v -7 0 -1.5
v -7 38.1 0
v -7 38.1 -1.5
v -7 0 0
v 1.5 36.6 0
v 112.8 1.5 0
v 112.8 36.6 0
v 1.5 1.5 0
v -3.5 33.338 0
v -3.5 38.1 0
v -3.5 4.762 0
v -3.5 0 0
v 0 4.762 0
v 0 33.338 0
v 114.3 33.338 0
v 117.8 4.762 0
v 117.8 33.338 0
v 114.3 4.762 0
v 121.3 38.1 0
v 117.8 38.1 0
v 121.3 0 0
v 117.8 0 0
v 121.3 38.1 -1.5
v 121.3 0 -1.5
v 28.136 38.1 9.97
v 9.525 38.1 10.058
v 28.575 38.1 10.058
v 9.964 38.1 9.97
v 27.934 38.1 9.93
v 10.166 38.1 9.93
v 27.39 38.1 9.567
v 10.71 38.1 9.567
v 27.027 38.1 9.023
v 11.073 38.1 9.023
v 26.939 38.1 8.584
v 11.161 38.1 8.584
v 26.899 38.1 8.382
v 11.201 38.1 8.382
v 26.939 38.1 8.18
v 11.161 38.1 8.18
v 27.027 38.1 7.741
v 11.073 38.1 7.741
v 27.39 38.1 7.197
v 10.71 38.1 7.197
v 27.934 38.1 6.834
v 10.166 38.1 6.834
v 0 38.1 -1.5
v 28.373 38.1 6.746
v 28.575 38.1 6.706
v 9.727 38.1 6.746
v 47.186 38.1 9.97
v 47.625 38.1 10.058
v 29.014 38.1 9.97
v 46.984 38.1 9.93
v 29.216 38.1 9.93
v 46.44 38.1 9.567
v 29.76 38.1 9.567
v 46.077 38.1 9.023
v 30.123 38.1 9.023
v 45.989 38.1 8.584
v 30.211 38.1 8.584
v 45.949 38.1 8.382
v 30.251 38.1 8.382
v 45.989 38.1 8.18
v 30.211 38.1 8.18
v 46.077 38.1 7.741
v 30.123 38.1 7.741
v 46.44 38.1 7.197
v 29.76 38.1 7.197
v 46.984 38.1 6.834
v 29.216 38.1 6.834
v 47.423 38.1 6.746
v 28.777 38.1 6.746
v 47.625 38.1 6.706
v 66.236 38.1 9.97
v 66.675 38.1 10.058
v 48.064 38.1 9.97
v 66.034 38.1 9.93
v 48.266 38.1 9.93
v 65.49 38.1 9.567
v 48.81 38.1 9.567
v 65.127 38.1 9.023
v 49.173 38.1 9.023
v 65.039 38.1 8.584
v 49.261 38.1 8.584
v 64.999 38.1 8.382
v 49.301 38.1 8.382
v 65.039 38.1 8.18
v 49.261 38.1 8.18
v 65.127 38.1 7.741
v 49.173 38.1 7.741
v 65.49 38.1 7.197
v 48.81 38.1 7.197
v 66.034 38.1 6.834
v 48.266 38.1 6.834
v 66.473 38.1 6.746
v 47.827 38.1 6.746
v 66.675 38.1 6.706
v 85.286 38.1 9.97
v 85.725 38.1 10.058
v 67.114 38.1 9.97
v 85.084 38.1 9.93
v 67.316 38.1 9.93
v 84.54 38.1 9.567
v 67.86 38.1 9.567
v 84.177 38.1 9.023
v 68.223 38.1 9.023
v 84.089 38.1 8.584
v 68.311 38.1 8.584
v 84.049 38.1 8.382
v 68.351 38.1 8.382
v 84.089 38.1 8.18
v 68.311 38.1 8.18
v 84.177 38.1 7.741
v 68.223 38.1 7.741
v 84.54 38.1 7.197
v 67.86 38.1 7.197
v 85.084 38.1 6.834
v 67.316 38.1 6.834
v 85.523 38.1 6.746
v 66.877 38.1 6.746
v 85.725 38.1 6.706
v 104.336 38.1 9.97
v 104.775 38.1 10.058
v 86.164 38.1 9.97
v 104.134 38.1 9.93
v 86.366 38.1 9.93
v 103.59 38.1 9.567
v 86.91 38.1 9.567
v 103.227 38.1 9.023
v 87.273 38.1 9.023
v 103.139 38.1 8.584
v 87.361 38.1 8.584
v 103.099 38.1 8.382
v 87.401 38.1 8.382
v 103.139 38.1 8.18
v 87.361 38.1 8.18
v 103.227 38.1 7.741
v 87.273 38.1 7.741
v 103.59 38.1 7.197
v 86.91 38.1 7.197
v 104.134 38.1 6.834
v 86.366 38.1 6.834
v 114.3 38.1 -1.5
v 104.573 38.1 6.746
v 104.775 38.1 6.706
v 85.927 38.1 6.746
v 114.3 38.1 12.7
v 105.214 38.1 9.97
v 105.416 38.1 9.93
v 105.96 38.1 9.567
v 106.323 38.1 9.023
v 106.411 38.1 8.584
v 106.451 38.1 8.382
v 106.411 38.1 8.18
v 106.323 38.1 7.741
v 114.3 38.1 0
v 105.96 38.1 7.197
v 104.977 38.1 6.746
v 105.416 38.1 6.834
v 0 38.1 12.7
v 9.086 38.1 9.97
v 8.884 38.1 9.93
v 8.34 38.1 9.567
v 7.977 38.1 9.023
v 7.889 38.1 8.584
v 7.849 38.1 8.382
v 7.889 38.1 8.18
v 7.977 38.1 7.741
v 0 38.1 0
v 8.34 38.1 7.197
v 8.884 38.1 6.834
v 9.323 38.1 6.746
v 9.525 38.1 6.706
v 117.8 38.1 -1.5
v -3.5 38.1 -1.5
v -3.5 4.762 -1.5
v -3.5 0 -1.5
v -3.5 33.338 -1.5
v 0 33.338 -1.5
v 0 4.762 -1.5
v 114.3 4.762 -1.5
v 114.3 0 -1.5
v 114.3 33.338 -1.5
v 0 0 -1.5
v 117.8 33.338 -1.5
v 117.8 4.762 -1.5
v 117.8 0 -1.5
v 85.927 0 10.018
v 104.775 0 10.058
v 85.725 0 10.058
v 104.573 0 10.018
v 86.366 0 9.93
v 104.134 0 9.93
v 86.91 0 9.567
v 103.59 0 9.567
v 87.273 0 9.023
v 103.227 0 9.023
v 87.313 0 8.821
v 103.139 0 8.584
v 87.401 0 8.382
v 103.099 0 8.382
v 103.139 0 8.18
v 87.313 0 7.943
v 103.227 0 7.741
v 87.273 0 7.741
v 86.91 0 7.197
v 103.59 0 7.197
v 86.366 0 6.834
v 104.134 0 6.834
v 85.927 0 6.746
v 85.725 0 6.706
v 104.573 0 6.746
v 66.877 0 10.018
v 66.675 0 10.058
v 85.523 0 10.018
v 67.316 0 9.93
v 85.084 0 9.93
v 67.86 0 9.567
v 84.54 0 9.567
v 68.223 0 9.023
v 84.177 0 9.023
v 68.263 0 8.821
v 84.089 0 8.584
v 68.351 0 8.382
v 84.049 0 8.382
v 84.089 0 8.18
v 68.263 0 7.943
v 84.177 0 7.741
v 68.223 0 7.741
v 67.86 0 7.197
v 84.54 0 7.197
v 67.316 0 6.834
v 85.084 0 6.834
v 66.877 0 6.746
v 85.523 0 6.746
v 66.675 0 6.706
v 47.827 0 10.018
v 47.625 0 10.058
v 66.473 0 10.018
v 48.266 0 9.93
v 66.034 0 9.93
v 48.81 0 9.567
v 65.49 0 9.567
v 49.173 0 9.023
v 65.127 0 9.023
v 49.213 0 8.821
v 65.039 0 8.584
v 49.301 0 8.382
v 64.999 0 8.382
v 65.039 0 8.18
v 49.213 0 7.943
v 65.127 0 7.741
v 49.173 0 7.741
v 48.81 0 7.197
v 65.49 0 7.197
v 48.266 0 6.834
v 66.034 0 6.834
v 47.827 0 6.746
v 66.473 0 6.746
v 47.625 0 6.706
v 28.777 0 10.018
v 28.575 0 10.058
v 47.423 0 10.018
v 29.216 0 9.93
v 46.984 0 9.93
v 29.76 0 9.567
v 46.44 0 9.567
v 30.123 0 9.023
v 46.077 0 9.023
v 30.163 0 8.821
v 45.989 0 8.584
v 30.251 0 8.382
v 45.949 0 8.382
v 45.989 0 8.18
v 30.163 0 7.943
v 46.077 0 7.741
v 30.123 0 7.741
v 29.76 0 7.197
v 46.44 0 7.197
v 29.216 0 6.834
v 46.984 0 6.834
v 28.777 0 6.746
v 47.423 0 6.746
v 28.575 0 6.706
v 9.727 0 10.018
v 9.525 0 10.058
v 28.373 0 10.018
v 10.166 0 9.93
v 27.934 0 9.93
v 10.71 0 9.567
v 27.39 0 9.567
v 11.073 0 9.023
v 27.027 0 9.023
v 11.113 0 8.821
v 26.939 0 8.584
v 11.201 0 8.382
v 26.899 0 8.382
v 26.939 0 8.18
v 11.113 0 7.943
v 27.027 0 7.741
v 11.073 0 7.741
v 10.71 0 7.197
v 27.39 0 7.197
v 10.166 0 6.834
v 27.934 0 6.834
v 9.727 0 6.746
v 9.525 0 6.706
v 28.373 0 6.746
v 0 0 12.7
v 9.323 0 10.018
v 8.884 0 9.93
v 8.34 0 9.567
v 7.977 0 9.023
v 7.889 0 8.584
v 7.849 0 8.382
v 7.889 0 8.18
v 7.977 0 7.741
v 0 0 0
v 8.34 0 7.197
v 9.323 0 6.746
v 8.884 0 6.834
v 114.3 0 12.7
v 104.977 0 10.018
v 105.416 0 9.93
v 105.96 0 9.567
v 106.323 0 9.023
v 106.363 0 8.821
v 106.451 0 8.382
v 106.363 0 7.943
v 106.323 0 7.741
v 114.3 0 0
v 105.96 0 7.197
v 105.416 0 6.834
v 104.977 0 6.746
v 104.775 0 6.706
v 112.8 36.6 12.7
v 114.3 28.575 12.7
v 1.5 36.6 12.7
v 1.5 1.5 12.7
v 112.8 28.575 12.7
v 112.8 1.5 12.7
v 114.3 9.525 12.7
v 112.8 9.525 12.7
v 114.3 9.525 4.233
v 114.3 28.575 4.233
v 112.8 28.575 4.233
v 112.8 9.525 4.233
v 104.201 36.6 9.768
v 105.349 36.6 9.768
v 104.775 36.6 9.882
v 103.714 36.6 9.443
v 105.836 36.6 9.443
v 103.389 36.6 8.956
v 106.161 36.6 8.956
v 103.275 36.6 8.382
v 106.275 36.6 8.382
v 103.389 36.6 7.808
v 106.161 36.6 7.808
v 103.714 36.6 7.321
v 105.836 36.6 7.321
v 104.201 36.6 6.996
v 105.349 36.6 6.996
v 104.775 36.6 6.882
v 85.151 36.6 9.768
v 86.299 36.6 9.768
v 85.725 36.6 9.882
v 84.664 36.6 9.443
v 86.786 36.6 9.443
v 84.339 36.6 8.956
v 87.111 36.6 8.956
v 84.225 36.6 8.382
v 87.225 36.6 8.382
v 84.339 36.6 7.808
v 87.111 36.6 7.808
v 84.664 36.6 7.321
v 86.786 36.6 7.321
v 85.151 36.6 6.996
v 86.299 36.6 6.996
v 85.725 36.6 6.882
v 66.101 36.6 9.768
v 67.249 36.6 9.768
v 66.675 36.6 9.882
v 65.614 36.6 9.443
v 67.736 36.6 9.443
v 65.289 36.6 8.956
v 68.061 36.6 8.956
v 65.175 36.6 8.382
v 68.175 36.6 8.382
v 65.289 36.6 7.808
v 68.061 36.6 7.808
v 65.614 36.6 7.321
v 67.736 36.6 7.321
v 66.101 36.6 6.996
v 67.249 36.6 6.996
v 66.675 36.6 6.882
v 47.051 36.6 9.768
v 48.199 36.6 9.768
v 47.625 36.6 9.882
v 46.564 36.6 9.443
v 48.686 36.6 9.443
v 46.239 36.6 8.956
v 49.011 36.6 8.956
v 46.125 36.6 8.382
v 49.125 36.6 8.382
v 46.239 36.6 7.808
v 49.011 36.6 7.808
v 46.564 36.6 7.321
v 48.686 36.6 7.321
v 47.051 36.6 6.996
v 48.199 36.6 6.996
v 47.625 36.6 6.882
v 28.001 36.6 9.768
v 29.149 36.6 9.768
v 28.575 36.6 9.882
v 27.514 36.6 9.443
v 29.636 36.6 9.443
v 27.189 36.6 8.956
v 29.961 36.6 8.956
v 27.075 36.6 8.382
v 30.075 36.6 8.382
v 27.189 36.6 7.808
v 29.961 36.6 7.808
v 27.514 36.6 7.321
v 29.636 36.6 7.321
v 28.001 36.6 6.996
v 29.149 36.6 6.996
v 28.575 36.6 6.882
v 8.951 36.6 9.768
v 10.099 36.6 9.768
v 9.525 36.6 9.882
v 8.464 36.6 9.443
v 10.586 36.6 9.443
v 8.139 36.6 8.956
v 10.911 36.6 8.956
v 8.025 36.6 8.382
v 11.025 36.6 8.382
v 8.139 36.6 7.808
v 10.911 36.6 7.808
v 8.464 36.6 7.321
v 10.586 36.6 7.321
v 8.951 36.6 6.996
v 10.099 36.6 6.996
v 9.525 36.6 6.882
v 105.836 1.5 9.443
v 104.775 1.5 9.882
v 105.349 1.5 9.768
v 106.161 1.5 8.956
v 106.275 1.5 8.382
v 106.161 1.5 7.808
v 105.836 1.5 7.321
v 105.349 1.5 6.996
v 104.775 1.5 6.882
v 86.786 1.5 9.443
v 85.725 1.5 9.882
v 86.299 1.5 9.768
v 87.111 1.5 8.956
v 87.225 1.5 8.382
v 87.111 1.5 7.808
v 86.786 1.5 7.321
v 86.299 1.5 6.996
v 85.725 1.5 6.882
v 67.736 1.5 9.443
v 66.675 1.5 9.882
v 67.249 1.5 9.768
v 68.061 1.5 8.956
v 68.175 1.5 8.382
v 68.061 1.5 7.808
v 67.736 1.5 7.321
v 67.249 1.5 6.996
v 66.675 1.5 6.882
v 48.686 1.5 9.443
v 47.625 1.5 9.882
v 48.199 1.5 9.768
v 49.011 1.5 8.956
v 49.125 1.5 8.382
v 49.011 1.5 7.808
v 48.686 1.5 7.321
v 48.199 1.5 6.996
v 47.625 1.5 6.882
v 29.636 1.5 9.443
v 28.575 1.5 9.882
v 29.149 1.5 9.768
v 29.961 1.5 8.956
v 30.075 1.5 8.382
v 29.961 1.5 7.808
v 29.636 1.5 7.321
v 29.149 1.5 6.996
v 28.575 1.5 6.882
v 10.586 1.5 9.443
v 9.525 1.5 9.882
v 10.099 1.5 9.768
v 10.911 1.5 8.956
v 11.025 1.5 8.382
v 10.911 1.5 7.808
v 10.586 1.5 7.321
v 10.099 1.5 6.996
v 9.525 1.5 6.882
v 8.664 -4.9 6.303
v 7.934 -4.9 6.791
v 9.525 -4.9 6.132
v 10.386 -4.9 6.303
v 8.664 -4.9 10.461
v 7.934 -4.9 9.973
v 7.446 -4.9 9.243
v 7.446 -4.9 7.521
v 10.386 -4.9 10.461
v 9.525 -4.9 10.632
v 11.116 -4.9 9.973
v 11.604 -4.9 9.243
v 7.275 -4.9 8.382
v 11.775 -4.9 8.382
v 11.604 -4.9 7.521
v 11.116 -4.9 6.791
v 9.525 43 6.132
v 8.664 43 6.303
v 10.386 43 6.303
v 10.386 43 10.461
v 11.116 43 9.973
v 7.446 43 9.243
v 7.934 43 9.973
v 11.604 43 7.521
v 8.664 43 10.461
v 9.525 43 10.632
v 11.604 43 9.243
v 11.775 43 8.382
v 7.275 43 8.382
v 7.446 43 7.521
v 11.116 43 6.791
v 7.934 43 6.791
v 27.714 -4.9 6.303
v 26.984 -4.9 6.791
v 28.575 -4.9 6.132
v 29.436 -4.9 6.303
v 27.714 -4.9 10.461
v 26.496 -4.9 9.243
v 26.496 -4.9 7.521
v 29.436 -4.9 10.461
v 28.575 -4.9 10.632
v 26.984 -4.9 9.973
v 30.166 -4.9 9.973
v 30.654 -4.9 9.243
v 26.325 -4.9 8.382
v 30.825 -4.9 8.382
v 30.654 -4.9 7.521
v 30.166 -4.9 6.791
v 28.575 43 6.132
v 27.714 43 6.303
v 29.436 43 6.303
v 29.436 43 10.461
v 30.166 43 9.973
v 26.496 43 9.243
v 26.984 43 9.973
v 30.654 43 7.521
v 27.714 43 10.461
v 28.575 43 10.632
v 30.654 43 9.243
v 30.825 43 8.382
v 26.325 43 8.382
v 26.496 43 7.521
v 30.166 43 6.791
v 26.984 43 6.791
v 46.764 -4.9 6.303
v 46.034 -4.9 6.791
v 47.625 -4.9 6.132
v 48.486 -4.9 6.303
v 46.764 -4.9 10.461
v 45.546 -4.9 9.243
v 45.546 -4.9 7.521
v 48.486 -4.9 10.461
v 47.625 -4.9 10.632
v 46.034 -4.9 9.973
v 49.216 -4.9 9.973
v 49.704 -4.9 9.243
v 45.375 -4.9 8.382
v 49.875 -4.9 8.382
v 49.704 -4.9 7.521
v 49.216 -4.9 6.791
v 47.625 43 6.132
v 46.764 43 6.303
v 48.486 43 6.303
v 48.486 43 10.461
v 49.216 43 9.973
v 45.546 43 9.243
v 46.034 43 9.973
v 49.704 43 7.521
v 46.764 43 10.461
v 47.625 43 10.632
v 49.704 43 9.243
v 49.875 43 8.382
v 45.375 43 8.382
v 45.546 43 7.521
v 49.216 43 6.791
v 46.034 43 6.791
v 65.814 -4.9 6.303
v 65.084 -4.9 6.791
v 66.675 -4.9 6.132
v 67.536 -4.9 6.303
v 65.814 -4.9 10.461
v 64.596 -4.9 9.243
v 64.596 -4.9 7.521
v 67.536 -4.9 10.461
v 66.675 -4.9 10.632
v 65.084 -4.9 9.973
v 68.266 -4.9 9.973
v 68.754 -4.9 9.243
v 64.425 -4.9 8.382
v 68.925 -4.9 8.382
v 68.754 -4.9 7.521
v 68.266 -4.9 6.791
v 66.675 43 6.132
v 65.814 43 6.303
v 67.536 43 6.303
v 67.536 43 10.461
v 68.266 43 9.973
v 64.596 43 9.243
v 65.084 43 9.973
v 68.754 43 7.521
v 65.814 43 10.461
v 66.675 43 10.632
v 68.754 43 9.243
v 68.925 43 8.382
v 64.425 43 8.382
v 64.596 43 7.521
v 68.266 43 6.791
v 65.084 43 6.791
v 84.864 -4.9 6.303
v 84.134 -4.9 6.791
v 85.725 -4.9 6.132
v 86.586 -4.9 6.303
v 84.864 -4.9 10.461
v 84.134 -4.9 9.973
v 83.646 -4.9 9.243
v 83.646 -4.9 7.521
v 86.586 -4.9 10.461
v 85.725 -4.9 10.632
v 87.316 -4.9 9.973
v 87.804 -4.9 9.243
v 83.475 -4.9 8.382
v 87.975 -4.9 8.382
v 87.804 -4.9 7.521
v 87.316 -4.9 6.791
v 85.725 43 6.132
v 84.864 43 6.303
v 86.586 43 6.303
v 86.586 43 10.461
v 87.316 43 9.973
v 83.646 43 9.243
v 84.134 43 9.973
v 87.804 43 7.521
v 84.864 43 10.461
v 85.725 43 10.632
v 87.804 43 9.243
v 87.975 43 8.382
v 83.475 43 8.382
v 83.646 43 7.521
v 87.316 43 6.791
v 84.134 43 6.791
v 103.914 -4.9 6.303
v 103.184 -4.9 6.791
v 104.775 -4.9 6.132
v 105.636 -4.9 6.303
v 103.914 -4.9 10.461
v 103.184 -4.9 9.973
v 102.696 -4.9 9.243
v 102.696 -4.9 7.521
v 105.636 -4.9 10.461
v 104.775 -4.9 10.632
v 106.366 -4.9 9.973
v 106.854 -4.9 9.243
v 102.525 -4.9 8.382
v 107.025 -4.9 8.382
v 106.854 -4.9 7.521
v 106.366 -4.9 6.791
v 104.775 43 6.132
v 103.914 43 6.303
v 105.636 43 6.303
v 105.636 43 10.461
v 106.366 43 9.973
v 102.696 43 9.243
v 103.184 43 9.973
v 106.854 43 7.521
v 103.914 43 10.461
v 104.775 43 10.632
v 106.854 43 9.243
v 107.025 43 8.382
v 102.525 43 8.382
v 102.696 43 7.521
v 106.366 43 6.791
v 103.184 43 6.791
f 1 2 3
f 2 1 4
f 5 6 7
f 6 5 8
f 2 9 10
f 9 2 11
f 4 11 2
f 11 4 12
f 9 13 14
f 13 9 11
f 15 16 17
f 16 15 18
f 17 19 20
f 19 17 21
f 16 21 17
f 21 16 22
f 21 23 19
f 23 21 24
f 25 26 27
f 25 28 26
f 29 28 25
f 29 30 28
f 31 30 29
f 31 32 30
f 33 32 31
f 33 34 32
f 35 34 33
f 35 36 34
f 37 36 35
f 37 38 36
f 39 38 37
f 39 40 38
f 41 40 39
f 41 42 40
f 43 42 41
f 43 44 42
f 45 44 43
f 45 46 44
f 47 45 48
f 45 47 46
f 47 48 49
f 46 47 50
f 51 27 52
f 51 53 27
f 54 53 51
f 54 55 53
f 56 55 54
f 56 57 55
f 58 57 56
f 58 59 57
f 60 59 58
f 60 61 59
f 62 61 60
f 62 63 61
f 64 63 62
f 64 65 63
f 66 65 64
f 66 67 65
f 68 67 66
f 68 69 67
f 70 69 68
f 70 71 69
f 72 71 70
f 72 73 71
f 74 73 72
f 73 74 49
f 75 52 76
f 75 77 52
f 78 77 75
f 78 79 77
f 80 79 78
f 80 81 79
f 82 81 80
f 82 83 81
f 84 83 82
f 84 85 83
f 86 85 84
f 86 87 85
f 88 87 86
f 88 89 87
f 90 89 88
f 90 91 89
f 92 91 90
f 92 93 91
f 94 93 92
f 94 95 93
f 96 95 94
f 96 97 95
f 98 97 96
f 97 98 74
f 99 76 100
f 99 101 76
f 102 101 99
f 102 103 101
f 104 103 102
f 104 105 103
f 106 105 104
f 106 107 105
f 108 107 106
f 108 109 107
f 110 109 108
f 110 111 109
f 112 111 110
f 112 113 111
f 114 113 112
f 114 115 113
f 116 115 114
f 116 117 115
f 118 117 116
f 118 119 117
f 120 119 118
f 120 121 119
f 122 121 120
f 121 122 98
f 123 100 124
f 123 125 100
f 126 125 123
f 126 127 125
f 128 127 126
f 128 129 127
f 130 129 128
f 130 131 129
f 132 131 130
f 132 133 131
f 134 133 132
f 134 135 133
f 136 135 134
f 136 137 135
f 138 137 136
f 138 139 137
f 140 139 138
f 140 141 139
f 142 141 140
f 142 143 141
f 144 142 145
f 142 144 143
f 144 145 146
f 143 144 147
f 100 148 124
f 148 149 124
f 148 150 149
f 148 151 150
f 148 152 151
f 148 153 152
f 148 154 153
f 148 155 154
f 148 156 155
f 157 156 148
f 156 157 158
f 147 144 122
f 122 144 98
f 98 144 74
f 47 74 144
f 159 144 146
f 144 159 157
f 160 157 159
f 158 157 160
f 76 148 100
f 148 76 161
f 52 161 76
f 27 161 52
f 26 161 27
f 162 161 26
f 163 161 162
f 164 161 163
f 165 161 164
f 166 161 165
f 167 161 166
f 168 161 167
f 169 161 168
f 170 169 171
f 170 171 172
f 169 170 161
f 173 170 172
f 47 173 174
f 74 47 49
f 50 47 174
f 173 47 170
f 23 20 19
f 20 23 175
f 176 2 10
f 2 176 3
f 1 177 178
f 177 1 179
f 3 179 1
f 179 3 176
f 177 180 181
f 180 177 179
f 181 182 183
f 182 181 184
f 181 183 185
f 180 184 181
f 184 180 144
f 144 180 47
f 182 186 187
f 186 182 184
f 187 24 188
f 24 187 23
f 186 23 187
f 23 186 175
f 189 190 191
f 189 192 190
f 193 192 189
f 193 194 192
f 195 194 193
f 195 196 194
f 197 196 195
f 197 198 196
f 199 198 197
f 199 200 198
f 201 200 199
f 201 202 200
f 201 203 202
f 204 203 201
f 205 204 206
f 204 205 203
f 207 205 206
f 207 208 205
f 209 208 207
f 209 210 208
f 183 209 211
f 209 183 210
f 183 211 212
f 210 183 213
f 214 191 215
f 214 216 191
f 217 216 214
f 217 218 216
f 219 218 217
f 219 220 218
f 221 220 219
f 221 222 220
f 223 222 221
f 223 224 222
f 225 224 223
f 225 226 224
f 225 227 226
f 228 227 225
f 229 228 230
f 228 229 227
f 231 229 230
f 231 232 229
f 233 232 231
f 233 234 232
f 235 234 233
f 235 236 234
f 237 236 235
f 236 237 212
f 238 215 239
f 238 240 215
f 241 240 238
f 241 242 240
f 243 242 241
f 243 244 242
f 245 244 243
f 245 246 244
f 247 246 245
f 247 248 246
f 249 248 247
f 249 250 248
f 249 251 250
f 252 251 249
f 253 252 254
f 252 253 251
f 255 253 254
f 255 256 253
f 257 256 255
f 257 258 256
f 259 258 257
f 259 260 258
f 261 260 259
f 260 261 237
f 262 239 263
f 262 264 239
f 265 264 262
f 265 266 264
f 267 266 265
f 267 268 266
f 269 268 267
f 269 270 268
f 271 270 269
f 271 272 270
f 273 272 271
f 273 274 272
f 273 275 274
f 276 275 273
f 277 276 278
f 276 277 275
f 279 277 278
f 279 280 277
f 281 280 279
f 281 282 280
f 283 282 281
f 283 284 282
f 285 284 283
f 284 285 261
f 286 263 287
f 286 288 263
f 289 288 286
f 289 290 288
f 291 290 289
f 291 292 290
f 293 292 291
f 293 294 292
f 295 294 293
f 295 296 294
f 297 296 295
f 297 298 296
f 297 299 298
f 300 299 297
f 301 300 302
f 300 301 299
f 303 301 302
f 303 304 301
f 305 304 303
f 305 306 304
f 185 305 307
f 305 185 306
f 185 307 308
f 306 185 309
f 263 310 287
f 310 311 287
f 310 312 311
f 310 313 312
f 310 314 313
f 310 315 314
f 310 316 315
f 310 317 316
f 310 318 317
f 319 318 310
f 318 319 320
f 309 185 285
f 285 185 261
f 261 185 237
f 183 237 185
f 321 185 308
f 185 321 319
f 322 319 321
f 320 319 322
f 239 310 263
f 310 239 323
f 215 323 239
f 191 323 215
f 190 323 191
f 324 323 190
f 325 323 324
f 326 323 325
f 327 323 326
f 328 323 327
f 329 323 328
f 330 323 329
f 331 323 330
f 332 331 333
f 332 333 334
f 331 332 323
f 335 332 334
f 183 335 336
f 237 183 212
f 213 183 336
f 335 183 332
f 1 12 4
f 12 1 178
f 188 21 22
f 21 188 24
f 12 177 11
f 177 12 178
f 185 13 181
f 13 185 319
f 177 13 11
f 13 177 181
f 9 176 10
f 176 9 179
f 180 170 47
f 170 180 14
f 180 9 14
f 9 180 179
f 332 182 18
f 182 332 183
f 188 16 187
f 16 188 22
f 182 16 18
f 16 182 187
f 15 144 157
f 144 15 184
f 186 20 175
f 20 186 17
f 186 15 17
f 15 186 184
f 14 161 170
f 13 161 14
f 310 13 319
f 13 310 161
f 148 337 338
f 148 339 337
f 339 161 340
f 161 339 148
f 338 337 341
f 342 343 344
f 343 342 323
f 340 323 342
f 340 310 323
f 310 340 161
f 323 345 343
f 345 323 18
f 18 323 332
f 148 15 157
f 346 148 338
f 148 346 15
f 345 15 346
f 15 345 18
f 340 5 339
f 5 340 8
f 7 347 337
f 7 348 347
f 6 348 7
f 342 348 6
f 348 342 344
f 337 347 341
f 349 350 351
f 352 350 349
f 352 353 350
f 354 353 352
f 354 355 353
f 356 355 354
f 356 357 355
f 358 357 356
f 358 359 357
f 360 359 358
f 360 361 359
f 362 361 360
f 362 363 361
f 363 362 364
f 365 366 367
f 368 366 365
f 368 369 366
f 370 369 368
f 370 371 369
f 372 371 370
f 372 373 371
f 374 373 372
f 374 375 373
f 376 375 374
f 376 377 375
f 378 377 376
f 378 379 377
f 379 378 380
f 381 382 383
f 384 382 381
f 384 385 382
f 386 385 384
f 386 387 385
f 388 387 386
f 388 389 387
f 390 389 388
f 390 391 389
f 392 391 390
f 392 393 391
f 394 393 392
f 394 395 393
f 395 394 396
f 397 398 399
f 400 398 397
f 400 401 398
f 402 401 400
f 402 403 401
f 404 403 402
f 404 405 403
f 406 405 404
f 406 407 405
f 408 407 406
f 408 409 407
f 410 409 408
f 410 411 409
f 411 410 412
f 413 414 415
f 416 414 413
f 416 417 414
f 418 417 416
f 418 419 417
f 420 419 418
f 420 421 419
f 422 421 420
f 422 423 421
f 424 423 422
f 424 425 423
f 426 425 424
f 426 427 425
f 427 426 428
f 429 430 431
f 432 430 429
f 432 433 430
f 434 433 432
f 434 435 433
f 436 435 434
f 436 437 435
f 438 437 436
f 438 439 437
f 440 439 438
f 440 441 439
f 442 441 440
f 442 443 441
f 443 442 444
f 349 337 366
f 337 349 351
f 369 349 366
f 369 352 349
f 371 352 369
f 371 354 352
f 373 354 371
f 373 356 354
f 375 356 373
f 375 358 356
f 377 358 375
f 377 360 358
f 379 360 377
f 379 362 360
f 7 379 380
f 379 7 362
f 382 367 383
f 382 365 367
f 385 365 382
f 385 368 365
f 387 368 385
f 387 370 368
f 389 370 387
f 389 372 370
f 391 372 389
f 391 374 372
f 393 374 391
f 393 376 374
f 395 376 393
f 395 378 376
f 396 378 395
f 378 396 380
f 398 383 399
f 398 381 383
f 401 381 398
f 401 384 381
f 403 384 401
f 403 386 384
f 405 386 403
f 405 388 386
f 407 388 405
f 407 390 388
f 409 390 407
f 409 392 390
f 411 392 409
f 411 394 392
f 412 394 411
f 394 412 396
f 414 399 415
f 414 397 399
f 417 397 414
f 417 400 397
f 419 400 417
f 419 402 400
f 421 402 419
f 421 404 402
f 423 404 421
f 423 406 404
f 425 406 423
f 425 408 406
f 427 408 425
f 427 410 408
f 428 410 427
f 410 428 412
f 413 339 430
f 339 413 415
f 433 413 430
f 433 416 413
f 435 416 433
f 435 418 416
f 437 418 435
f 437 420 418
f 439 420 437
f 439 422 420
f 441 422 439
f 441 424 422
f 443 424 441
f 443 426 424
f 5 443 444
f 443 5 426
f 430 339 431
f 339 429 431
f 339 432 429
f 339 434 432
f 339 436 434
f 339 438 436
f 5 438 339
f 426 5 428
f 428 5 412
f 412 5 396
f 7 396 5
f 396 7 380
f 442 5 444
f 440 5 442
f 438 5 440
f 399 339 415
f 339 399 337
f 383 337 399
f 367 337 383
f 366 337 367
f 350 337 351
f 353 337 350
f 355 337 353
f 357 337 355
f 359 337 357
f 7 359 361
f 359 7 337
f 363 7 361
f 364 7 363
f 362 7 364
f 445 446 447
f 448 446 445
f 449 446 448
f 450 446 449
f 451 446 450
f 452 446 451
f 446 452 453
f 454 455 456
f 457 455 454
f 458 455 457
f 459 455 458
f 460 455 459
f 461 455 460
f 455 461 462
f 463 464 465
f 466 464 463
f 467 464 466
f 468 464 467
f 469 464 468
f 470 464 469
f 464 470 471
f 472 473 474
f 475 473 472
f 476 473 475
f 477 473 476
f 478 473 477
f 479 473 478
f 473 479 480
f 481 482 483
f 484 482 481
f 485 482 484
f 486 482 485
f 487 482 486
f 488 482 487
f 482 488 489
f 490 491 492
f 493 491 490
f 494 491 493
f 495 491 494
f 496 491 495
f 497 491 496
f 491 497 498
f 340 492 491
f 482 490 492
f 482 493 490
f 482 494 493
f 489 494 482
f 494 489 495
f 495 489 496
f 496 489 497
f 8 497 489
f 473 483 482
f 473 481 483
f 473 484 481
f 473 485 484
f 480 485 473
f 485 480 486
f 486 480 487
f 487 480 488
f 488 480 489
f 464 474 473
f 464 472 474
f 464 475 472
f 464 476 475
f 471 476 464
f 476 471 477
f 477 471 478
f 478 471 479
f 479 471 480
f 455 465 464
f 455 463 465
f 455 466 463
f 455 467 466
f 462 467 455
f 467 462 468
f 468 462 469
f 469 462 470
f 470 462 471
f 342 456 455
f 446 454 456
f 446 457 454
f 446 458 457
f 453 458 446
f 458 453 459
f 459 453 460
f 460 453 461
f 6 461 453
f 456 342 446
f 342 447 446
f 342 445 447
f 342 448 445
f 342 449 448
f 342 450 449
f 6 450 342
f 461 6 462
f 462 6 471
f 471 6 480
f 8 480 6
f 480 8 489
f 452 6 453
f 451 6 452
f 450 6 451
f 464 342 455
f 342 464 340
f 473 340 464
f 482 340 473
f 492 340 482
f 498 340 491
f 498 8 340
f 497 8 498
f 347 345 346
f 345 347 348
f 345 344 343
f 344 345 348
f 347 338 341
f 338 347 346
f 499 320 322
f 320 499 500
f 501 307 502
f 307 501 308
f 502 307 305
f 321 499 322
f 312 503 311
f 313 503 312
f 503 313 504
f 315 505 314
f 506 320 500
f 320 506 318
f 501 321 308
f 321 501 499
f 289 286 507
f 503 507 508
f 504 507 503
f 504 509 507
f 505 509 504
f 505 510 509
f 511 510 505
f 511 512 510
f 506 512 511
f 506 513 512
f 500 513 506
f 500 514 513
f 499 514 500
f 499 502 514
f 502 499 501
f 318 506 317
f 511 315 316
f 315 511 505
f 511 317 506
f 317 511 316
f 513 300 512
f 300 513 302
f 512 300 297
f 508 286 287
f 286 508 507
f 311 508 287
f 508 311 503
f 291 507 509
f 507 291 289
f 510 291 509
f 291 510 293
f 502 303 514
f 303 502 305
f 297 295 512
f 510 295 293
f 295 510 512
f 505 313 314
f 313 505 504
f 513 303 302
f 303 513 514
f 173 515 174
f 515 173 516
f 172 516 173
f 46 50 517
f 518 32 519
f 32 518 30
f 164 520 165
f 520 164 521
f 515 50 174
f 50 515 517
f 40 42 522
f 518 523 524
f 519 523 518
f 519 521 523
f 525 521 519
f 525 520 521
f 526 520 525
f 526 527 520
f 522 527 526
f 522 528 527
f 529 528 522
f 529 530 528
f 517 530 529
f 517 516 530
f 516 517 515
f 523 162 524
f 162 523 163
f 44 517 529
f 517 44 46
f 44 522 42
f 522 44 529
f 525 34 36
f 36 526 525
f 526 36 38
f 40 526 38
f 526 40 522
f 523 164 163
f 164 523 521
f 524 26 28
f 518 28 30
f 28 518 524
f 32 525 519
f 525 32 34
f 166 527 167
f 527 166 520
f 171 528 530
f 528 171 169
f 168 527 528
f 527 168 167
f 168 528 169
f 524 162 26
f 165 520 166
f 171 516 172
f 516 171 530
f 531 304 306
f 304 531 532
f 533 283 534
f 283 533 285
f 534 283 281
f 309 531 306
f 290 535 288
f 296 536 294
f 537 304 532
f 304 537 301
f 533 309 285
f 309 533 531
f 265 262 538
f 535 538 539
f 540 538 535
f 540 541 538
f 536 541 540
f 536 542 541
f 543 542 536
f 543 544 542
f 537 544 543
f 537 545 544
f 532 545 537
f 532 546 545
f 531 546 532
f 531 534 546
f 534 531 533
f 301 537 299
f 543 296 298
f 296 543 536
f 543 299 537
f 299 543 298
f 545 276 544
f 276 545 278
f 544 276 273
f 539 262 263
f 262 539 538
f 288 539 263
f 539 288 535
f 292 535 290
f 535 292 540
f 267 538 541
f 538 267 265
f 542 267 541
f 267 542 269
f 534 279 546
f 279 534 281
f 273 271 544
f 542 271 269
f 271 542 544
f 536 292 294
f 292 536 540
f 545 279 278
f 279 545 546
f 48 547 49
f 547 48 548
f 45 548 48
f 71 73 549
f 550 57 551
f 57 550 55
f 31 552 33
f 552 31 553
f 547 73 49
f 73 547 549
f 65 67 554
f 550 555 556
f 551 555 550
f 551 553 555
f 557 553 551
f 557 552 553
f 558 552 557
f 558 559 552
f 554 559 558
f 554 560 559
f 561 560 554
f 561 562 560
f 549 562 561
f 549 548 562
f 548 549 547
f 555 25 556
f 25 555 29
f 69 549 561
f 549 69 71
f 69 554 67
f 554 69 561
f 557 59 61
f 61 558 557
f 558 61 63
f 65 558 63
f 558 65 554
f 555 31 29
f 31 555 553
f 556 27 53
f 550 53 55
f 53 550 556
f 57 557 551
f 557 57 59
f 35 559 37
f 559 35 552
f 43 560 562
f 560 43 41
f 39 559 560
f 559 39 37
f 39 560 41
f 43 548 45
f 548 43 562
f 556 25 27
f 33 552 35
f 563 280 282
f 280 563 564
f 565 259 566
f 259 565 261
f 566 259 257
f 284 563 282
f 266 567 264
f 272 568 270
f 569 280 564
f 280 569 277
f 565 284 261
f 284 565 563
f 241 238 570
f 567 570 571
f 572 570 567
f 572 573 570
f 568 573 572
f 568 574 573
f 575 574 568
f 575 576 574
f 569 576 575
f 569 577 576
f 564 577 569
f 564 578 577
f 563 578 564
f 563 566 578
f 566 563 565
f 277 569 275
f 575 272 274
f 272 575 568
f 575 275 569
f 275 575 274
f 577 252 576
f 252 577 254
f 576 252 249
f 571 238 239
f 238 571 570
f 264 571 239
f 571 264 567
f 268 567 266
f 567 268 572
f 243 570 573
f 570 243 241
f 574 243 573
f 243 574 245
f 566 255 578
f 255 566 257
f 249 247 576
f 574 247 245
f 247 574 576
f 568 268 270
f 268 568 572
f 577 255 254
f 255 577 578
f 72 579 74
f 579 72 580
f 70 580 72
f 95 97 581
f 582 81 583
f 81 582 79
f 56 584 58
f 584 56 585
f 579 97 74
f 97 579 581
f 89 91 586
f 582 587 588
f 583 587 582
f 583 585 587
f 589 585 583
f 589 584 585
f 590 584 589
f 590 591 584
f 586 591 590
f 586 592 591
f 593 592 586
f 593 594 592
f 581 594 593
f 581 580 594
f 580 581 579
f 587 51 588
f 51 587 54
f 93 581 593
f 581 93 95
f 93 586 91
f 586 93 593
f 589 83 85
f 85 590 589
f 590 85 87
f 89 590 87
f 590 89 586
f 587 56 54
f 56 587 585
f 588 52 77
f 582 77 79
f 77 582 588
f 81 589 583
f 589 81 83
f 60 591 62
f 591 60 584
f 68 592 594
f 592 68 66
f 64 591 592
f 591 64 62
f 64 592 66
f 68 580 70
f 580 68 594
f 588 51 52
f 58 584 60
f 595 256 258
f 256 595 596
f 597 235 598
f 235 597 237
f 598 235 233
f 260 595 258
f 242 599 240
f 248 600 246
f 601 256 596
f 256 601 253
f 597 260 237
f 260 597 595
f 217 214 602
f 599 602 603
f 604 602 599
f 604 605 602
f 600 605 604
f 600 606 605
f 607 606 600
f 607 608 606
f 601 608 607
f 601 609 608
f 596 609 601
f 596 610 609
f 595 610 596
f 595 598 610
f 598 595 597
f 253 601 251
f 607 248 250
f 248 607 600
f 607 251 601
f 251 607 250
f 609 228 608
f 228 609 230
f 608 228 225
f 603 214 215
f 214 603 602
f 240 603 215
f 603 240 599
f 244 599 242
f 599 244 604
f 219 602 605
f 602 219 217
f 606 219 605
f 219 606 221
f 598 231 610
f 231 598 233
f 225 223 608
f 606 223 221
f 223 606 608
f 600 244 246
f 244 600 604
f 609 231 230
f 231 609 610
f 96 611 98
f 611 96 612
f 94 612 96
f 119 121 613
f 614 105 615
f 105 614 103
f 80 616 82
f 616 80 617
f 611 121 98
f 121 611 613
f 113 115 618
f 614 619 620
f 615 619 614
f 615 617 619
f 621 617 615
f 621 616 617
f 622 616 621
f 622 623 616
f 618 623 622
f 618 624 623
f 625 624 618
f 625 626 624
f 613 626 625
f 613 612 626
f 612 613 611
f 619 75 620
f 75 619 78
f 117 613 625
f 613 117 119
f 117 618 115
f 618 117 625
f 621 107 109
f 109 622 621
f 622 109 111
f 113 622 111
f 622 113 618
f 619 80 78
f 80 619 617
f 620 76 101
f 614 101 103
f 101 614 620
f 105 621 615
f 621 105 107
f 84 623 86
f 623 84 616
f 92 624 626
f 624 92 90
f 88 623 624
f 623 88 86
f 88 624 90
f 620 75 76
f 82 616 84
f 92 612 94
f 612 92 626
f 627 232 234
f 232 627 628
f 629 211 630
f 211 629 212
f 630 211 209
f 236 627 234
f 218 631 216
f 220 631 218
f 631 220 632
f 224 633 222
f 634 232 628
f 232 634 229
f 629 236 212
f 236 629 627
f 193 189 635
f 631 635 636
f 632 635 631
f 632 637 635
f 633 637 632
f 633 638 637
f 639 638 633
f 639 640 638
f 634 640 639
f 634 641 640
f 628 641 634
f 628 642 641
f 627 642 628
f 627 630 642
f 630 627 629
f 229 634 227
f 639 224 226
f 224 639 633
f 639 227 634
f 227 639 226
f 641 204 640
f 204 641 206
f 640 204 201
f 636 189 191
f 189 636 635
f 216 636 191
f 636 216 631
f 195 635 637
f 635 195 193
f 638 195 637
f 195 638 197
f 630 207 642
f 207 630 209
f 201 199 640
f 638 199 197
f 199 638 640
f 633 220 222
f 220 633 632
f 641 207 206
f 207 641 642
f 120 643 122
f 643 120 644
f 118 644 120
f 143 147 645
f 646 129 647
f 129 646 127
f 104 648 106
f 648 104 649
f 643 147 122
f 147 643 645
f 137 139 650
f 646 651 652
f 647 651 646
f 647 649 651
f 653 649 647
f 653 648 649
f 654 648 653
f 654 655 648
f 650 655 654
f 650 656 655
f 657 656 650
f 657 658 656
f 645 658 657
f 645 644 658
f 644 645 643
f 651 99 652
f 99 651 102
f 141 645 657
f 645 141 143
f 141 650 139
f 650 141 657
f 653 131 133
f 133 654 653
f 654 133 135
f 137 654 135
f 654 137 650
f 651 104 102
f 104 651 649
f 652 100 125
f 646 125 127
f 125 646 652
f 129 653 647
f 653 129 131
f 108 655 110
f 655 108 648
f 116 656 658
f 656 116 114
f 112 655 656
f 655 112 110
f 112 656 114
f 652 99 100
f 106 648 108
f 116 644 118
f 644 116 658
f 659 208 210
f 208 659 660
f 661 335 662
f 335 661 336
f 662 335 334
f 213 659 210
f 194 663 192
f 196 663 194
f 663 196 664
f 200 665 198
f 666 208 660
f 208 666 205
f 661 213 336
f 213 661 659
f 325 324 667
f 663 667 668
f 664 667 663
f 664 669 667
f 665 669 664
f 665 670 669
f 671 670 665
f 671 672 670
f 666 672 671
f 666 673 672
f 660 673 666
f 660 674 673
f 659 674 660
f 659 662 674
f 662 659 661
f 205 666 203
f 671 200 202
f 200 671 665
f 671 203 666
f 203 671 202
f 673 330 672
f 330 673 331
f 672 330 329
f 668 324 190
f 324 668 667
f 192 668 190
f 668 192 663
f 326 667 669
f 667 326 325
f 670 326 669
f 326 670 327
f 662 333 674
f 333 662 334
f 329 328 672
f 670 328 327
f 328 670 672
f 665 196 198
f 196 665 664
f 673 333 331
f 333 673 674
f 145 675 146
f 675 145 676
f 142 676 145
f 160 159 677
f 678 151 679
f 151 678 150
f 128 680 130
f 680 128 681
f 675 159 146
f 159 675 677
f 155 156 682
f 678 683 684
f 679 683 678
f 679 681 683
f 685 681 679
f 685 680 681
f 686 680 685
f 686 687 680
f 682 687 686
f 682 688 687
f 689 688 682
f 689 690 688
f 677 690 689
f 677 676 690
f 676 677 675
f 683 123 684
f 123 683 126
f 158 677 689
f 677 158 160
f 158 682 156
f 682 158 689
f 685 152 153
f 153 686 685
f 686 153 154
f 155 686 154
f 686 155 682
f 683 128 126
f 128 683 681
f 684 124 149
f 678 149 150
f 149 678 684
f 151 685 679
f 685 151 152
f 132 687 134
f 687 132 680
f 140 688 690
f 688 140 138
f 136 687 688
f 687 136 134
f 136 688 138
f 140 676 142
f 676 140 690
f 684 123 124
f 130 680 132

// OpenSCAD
// battery mount for Make Magazine's "Towel" RC airplane

// The concept is just a shallow box with hooks to allow
// rubber bands to be stretched across the top; just enough
// to keep the battery in place during flight but easy
// enough to remove for safe charging.

// overall dimensions in inches
_width = 1.5;
_length = 4.5;
_height = 0.5;

// conversion to mm
mm = 25.4;  // millimeters per inch
width = _width * mm;
length = _length * mm;
height = _height * mm;
tabs = 7;
thick = 1.5;

module base_plate() {
    difference() {
        // base plate
        translate([-tabs, 0, -thick])
            cube([length+2*tabs, width, thick]);
        // subtract cutouts for mounting w/ zip ties
        translate([-tabs/2, 0, -thick])
            cube([tabs/2, width/8, thick*2]);
        translate([-tabs/2, 7*width/8, -thick])
            cube([tabs/2, width/8, thick*2]);
        translate([length, 0, -thick])
            cube([tabs/2, width/8, thick*2]);
        translate([length, 7*width/8, -thick])
            cube([tabs/2, width/8, thick*2]);
    }
}

module box() {
    difference() {
        // form the outer box
        cube([length, width, height]);
        // hollow out the inside
        translate([thick, thick, 0])
            cube([length-2*thick, width-2*thick, height+thick]);
        // subtract cutouts for battery wires
        translate([length/2, width/4, height/3])
            cube([length, width/2, height]);
    }
}

module peg(flip=0) {
    r1 = thick;
    r2 = thick*1.5;
    rotate([90, 90, 180*flip])
    translate([0, 0, -thick])
        cylinder(h=tabs*0.7+thick, r1=r1, r2=r2, $fn=16.0);
}

module pegs(n) {
    spacing = length/n;
    union() {
        for(i=[0:1:n-1]) {
            translate([spacing*(0.5+i), 0, height*0.66]) {
                peg(0);
                translate([0,width,0]) peg(1);
            }
        }
    }
}

// this is the full assembly
union() {
    base_plate();
    box();
    pegs(6);
}
